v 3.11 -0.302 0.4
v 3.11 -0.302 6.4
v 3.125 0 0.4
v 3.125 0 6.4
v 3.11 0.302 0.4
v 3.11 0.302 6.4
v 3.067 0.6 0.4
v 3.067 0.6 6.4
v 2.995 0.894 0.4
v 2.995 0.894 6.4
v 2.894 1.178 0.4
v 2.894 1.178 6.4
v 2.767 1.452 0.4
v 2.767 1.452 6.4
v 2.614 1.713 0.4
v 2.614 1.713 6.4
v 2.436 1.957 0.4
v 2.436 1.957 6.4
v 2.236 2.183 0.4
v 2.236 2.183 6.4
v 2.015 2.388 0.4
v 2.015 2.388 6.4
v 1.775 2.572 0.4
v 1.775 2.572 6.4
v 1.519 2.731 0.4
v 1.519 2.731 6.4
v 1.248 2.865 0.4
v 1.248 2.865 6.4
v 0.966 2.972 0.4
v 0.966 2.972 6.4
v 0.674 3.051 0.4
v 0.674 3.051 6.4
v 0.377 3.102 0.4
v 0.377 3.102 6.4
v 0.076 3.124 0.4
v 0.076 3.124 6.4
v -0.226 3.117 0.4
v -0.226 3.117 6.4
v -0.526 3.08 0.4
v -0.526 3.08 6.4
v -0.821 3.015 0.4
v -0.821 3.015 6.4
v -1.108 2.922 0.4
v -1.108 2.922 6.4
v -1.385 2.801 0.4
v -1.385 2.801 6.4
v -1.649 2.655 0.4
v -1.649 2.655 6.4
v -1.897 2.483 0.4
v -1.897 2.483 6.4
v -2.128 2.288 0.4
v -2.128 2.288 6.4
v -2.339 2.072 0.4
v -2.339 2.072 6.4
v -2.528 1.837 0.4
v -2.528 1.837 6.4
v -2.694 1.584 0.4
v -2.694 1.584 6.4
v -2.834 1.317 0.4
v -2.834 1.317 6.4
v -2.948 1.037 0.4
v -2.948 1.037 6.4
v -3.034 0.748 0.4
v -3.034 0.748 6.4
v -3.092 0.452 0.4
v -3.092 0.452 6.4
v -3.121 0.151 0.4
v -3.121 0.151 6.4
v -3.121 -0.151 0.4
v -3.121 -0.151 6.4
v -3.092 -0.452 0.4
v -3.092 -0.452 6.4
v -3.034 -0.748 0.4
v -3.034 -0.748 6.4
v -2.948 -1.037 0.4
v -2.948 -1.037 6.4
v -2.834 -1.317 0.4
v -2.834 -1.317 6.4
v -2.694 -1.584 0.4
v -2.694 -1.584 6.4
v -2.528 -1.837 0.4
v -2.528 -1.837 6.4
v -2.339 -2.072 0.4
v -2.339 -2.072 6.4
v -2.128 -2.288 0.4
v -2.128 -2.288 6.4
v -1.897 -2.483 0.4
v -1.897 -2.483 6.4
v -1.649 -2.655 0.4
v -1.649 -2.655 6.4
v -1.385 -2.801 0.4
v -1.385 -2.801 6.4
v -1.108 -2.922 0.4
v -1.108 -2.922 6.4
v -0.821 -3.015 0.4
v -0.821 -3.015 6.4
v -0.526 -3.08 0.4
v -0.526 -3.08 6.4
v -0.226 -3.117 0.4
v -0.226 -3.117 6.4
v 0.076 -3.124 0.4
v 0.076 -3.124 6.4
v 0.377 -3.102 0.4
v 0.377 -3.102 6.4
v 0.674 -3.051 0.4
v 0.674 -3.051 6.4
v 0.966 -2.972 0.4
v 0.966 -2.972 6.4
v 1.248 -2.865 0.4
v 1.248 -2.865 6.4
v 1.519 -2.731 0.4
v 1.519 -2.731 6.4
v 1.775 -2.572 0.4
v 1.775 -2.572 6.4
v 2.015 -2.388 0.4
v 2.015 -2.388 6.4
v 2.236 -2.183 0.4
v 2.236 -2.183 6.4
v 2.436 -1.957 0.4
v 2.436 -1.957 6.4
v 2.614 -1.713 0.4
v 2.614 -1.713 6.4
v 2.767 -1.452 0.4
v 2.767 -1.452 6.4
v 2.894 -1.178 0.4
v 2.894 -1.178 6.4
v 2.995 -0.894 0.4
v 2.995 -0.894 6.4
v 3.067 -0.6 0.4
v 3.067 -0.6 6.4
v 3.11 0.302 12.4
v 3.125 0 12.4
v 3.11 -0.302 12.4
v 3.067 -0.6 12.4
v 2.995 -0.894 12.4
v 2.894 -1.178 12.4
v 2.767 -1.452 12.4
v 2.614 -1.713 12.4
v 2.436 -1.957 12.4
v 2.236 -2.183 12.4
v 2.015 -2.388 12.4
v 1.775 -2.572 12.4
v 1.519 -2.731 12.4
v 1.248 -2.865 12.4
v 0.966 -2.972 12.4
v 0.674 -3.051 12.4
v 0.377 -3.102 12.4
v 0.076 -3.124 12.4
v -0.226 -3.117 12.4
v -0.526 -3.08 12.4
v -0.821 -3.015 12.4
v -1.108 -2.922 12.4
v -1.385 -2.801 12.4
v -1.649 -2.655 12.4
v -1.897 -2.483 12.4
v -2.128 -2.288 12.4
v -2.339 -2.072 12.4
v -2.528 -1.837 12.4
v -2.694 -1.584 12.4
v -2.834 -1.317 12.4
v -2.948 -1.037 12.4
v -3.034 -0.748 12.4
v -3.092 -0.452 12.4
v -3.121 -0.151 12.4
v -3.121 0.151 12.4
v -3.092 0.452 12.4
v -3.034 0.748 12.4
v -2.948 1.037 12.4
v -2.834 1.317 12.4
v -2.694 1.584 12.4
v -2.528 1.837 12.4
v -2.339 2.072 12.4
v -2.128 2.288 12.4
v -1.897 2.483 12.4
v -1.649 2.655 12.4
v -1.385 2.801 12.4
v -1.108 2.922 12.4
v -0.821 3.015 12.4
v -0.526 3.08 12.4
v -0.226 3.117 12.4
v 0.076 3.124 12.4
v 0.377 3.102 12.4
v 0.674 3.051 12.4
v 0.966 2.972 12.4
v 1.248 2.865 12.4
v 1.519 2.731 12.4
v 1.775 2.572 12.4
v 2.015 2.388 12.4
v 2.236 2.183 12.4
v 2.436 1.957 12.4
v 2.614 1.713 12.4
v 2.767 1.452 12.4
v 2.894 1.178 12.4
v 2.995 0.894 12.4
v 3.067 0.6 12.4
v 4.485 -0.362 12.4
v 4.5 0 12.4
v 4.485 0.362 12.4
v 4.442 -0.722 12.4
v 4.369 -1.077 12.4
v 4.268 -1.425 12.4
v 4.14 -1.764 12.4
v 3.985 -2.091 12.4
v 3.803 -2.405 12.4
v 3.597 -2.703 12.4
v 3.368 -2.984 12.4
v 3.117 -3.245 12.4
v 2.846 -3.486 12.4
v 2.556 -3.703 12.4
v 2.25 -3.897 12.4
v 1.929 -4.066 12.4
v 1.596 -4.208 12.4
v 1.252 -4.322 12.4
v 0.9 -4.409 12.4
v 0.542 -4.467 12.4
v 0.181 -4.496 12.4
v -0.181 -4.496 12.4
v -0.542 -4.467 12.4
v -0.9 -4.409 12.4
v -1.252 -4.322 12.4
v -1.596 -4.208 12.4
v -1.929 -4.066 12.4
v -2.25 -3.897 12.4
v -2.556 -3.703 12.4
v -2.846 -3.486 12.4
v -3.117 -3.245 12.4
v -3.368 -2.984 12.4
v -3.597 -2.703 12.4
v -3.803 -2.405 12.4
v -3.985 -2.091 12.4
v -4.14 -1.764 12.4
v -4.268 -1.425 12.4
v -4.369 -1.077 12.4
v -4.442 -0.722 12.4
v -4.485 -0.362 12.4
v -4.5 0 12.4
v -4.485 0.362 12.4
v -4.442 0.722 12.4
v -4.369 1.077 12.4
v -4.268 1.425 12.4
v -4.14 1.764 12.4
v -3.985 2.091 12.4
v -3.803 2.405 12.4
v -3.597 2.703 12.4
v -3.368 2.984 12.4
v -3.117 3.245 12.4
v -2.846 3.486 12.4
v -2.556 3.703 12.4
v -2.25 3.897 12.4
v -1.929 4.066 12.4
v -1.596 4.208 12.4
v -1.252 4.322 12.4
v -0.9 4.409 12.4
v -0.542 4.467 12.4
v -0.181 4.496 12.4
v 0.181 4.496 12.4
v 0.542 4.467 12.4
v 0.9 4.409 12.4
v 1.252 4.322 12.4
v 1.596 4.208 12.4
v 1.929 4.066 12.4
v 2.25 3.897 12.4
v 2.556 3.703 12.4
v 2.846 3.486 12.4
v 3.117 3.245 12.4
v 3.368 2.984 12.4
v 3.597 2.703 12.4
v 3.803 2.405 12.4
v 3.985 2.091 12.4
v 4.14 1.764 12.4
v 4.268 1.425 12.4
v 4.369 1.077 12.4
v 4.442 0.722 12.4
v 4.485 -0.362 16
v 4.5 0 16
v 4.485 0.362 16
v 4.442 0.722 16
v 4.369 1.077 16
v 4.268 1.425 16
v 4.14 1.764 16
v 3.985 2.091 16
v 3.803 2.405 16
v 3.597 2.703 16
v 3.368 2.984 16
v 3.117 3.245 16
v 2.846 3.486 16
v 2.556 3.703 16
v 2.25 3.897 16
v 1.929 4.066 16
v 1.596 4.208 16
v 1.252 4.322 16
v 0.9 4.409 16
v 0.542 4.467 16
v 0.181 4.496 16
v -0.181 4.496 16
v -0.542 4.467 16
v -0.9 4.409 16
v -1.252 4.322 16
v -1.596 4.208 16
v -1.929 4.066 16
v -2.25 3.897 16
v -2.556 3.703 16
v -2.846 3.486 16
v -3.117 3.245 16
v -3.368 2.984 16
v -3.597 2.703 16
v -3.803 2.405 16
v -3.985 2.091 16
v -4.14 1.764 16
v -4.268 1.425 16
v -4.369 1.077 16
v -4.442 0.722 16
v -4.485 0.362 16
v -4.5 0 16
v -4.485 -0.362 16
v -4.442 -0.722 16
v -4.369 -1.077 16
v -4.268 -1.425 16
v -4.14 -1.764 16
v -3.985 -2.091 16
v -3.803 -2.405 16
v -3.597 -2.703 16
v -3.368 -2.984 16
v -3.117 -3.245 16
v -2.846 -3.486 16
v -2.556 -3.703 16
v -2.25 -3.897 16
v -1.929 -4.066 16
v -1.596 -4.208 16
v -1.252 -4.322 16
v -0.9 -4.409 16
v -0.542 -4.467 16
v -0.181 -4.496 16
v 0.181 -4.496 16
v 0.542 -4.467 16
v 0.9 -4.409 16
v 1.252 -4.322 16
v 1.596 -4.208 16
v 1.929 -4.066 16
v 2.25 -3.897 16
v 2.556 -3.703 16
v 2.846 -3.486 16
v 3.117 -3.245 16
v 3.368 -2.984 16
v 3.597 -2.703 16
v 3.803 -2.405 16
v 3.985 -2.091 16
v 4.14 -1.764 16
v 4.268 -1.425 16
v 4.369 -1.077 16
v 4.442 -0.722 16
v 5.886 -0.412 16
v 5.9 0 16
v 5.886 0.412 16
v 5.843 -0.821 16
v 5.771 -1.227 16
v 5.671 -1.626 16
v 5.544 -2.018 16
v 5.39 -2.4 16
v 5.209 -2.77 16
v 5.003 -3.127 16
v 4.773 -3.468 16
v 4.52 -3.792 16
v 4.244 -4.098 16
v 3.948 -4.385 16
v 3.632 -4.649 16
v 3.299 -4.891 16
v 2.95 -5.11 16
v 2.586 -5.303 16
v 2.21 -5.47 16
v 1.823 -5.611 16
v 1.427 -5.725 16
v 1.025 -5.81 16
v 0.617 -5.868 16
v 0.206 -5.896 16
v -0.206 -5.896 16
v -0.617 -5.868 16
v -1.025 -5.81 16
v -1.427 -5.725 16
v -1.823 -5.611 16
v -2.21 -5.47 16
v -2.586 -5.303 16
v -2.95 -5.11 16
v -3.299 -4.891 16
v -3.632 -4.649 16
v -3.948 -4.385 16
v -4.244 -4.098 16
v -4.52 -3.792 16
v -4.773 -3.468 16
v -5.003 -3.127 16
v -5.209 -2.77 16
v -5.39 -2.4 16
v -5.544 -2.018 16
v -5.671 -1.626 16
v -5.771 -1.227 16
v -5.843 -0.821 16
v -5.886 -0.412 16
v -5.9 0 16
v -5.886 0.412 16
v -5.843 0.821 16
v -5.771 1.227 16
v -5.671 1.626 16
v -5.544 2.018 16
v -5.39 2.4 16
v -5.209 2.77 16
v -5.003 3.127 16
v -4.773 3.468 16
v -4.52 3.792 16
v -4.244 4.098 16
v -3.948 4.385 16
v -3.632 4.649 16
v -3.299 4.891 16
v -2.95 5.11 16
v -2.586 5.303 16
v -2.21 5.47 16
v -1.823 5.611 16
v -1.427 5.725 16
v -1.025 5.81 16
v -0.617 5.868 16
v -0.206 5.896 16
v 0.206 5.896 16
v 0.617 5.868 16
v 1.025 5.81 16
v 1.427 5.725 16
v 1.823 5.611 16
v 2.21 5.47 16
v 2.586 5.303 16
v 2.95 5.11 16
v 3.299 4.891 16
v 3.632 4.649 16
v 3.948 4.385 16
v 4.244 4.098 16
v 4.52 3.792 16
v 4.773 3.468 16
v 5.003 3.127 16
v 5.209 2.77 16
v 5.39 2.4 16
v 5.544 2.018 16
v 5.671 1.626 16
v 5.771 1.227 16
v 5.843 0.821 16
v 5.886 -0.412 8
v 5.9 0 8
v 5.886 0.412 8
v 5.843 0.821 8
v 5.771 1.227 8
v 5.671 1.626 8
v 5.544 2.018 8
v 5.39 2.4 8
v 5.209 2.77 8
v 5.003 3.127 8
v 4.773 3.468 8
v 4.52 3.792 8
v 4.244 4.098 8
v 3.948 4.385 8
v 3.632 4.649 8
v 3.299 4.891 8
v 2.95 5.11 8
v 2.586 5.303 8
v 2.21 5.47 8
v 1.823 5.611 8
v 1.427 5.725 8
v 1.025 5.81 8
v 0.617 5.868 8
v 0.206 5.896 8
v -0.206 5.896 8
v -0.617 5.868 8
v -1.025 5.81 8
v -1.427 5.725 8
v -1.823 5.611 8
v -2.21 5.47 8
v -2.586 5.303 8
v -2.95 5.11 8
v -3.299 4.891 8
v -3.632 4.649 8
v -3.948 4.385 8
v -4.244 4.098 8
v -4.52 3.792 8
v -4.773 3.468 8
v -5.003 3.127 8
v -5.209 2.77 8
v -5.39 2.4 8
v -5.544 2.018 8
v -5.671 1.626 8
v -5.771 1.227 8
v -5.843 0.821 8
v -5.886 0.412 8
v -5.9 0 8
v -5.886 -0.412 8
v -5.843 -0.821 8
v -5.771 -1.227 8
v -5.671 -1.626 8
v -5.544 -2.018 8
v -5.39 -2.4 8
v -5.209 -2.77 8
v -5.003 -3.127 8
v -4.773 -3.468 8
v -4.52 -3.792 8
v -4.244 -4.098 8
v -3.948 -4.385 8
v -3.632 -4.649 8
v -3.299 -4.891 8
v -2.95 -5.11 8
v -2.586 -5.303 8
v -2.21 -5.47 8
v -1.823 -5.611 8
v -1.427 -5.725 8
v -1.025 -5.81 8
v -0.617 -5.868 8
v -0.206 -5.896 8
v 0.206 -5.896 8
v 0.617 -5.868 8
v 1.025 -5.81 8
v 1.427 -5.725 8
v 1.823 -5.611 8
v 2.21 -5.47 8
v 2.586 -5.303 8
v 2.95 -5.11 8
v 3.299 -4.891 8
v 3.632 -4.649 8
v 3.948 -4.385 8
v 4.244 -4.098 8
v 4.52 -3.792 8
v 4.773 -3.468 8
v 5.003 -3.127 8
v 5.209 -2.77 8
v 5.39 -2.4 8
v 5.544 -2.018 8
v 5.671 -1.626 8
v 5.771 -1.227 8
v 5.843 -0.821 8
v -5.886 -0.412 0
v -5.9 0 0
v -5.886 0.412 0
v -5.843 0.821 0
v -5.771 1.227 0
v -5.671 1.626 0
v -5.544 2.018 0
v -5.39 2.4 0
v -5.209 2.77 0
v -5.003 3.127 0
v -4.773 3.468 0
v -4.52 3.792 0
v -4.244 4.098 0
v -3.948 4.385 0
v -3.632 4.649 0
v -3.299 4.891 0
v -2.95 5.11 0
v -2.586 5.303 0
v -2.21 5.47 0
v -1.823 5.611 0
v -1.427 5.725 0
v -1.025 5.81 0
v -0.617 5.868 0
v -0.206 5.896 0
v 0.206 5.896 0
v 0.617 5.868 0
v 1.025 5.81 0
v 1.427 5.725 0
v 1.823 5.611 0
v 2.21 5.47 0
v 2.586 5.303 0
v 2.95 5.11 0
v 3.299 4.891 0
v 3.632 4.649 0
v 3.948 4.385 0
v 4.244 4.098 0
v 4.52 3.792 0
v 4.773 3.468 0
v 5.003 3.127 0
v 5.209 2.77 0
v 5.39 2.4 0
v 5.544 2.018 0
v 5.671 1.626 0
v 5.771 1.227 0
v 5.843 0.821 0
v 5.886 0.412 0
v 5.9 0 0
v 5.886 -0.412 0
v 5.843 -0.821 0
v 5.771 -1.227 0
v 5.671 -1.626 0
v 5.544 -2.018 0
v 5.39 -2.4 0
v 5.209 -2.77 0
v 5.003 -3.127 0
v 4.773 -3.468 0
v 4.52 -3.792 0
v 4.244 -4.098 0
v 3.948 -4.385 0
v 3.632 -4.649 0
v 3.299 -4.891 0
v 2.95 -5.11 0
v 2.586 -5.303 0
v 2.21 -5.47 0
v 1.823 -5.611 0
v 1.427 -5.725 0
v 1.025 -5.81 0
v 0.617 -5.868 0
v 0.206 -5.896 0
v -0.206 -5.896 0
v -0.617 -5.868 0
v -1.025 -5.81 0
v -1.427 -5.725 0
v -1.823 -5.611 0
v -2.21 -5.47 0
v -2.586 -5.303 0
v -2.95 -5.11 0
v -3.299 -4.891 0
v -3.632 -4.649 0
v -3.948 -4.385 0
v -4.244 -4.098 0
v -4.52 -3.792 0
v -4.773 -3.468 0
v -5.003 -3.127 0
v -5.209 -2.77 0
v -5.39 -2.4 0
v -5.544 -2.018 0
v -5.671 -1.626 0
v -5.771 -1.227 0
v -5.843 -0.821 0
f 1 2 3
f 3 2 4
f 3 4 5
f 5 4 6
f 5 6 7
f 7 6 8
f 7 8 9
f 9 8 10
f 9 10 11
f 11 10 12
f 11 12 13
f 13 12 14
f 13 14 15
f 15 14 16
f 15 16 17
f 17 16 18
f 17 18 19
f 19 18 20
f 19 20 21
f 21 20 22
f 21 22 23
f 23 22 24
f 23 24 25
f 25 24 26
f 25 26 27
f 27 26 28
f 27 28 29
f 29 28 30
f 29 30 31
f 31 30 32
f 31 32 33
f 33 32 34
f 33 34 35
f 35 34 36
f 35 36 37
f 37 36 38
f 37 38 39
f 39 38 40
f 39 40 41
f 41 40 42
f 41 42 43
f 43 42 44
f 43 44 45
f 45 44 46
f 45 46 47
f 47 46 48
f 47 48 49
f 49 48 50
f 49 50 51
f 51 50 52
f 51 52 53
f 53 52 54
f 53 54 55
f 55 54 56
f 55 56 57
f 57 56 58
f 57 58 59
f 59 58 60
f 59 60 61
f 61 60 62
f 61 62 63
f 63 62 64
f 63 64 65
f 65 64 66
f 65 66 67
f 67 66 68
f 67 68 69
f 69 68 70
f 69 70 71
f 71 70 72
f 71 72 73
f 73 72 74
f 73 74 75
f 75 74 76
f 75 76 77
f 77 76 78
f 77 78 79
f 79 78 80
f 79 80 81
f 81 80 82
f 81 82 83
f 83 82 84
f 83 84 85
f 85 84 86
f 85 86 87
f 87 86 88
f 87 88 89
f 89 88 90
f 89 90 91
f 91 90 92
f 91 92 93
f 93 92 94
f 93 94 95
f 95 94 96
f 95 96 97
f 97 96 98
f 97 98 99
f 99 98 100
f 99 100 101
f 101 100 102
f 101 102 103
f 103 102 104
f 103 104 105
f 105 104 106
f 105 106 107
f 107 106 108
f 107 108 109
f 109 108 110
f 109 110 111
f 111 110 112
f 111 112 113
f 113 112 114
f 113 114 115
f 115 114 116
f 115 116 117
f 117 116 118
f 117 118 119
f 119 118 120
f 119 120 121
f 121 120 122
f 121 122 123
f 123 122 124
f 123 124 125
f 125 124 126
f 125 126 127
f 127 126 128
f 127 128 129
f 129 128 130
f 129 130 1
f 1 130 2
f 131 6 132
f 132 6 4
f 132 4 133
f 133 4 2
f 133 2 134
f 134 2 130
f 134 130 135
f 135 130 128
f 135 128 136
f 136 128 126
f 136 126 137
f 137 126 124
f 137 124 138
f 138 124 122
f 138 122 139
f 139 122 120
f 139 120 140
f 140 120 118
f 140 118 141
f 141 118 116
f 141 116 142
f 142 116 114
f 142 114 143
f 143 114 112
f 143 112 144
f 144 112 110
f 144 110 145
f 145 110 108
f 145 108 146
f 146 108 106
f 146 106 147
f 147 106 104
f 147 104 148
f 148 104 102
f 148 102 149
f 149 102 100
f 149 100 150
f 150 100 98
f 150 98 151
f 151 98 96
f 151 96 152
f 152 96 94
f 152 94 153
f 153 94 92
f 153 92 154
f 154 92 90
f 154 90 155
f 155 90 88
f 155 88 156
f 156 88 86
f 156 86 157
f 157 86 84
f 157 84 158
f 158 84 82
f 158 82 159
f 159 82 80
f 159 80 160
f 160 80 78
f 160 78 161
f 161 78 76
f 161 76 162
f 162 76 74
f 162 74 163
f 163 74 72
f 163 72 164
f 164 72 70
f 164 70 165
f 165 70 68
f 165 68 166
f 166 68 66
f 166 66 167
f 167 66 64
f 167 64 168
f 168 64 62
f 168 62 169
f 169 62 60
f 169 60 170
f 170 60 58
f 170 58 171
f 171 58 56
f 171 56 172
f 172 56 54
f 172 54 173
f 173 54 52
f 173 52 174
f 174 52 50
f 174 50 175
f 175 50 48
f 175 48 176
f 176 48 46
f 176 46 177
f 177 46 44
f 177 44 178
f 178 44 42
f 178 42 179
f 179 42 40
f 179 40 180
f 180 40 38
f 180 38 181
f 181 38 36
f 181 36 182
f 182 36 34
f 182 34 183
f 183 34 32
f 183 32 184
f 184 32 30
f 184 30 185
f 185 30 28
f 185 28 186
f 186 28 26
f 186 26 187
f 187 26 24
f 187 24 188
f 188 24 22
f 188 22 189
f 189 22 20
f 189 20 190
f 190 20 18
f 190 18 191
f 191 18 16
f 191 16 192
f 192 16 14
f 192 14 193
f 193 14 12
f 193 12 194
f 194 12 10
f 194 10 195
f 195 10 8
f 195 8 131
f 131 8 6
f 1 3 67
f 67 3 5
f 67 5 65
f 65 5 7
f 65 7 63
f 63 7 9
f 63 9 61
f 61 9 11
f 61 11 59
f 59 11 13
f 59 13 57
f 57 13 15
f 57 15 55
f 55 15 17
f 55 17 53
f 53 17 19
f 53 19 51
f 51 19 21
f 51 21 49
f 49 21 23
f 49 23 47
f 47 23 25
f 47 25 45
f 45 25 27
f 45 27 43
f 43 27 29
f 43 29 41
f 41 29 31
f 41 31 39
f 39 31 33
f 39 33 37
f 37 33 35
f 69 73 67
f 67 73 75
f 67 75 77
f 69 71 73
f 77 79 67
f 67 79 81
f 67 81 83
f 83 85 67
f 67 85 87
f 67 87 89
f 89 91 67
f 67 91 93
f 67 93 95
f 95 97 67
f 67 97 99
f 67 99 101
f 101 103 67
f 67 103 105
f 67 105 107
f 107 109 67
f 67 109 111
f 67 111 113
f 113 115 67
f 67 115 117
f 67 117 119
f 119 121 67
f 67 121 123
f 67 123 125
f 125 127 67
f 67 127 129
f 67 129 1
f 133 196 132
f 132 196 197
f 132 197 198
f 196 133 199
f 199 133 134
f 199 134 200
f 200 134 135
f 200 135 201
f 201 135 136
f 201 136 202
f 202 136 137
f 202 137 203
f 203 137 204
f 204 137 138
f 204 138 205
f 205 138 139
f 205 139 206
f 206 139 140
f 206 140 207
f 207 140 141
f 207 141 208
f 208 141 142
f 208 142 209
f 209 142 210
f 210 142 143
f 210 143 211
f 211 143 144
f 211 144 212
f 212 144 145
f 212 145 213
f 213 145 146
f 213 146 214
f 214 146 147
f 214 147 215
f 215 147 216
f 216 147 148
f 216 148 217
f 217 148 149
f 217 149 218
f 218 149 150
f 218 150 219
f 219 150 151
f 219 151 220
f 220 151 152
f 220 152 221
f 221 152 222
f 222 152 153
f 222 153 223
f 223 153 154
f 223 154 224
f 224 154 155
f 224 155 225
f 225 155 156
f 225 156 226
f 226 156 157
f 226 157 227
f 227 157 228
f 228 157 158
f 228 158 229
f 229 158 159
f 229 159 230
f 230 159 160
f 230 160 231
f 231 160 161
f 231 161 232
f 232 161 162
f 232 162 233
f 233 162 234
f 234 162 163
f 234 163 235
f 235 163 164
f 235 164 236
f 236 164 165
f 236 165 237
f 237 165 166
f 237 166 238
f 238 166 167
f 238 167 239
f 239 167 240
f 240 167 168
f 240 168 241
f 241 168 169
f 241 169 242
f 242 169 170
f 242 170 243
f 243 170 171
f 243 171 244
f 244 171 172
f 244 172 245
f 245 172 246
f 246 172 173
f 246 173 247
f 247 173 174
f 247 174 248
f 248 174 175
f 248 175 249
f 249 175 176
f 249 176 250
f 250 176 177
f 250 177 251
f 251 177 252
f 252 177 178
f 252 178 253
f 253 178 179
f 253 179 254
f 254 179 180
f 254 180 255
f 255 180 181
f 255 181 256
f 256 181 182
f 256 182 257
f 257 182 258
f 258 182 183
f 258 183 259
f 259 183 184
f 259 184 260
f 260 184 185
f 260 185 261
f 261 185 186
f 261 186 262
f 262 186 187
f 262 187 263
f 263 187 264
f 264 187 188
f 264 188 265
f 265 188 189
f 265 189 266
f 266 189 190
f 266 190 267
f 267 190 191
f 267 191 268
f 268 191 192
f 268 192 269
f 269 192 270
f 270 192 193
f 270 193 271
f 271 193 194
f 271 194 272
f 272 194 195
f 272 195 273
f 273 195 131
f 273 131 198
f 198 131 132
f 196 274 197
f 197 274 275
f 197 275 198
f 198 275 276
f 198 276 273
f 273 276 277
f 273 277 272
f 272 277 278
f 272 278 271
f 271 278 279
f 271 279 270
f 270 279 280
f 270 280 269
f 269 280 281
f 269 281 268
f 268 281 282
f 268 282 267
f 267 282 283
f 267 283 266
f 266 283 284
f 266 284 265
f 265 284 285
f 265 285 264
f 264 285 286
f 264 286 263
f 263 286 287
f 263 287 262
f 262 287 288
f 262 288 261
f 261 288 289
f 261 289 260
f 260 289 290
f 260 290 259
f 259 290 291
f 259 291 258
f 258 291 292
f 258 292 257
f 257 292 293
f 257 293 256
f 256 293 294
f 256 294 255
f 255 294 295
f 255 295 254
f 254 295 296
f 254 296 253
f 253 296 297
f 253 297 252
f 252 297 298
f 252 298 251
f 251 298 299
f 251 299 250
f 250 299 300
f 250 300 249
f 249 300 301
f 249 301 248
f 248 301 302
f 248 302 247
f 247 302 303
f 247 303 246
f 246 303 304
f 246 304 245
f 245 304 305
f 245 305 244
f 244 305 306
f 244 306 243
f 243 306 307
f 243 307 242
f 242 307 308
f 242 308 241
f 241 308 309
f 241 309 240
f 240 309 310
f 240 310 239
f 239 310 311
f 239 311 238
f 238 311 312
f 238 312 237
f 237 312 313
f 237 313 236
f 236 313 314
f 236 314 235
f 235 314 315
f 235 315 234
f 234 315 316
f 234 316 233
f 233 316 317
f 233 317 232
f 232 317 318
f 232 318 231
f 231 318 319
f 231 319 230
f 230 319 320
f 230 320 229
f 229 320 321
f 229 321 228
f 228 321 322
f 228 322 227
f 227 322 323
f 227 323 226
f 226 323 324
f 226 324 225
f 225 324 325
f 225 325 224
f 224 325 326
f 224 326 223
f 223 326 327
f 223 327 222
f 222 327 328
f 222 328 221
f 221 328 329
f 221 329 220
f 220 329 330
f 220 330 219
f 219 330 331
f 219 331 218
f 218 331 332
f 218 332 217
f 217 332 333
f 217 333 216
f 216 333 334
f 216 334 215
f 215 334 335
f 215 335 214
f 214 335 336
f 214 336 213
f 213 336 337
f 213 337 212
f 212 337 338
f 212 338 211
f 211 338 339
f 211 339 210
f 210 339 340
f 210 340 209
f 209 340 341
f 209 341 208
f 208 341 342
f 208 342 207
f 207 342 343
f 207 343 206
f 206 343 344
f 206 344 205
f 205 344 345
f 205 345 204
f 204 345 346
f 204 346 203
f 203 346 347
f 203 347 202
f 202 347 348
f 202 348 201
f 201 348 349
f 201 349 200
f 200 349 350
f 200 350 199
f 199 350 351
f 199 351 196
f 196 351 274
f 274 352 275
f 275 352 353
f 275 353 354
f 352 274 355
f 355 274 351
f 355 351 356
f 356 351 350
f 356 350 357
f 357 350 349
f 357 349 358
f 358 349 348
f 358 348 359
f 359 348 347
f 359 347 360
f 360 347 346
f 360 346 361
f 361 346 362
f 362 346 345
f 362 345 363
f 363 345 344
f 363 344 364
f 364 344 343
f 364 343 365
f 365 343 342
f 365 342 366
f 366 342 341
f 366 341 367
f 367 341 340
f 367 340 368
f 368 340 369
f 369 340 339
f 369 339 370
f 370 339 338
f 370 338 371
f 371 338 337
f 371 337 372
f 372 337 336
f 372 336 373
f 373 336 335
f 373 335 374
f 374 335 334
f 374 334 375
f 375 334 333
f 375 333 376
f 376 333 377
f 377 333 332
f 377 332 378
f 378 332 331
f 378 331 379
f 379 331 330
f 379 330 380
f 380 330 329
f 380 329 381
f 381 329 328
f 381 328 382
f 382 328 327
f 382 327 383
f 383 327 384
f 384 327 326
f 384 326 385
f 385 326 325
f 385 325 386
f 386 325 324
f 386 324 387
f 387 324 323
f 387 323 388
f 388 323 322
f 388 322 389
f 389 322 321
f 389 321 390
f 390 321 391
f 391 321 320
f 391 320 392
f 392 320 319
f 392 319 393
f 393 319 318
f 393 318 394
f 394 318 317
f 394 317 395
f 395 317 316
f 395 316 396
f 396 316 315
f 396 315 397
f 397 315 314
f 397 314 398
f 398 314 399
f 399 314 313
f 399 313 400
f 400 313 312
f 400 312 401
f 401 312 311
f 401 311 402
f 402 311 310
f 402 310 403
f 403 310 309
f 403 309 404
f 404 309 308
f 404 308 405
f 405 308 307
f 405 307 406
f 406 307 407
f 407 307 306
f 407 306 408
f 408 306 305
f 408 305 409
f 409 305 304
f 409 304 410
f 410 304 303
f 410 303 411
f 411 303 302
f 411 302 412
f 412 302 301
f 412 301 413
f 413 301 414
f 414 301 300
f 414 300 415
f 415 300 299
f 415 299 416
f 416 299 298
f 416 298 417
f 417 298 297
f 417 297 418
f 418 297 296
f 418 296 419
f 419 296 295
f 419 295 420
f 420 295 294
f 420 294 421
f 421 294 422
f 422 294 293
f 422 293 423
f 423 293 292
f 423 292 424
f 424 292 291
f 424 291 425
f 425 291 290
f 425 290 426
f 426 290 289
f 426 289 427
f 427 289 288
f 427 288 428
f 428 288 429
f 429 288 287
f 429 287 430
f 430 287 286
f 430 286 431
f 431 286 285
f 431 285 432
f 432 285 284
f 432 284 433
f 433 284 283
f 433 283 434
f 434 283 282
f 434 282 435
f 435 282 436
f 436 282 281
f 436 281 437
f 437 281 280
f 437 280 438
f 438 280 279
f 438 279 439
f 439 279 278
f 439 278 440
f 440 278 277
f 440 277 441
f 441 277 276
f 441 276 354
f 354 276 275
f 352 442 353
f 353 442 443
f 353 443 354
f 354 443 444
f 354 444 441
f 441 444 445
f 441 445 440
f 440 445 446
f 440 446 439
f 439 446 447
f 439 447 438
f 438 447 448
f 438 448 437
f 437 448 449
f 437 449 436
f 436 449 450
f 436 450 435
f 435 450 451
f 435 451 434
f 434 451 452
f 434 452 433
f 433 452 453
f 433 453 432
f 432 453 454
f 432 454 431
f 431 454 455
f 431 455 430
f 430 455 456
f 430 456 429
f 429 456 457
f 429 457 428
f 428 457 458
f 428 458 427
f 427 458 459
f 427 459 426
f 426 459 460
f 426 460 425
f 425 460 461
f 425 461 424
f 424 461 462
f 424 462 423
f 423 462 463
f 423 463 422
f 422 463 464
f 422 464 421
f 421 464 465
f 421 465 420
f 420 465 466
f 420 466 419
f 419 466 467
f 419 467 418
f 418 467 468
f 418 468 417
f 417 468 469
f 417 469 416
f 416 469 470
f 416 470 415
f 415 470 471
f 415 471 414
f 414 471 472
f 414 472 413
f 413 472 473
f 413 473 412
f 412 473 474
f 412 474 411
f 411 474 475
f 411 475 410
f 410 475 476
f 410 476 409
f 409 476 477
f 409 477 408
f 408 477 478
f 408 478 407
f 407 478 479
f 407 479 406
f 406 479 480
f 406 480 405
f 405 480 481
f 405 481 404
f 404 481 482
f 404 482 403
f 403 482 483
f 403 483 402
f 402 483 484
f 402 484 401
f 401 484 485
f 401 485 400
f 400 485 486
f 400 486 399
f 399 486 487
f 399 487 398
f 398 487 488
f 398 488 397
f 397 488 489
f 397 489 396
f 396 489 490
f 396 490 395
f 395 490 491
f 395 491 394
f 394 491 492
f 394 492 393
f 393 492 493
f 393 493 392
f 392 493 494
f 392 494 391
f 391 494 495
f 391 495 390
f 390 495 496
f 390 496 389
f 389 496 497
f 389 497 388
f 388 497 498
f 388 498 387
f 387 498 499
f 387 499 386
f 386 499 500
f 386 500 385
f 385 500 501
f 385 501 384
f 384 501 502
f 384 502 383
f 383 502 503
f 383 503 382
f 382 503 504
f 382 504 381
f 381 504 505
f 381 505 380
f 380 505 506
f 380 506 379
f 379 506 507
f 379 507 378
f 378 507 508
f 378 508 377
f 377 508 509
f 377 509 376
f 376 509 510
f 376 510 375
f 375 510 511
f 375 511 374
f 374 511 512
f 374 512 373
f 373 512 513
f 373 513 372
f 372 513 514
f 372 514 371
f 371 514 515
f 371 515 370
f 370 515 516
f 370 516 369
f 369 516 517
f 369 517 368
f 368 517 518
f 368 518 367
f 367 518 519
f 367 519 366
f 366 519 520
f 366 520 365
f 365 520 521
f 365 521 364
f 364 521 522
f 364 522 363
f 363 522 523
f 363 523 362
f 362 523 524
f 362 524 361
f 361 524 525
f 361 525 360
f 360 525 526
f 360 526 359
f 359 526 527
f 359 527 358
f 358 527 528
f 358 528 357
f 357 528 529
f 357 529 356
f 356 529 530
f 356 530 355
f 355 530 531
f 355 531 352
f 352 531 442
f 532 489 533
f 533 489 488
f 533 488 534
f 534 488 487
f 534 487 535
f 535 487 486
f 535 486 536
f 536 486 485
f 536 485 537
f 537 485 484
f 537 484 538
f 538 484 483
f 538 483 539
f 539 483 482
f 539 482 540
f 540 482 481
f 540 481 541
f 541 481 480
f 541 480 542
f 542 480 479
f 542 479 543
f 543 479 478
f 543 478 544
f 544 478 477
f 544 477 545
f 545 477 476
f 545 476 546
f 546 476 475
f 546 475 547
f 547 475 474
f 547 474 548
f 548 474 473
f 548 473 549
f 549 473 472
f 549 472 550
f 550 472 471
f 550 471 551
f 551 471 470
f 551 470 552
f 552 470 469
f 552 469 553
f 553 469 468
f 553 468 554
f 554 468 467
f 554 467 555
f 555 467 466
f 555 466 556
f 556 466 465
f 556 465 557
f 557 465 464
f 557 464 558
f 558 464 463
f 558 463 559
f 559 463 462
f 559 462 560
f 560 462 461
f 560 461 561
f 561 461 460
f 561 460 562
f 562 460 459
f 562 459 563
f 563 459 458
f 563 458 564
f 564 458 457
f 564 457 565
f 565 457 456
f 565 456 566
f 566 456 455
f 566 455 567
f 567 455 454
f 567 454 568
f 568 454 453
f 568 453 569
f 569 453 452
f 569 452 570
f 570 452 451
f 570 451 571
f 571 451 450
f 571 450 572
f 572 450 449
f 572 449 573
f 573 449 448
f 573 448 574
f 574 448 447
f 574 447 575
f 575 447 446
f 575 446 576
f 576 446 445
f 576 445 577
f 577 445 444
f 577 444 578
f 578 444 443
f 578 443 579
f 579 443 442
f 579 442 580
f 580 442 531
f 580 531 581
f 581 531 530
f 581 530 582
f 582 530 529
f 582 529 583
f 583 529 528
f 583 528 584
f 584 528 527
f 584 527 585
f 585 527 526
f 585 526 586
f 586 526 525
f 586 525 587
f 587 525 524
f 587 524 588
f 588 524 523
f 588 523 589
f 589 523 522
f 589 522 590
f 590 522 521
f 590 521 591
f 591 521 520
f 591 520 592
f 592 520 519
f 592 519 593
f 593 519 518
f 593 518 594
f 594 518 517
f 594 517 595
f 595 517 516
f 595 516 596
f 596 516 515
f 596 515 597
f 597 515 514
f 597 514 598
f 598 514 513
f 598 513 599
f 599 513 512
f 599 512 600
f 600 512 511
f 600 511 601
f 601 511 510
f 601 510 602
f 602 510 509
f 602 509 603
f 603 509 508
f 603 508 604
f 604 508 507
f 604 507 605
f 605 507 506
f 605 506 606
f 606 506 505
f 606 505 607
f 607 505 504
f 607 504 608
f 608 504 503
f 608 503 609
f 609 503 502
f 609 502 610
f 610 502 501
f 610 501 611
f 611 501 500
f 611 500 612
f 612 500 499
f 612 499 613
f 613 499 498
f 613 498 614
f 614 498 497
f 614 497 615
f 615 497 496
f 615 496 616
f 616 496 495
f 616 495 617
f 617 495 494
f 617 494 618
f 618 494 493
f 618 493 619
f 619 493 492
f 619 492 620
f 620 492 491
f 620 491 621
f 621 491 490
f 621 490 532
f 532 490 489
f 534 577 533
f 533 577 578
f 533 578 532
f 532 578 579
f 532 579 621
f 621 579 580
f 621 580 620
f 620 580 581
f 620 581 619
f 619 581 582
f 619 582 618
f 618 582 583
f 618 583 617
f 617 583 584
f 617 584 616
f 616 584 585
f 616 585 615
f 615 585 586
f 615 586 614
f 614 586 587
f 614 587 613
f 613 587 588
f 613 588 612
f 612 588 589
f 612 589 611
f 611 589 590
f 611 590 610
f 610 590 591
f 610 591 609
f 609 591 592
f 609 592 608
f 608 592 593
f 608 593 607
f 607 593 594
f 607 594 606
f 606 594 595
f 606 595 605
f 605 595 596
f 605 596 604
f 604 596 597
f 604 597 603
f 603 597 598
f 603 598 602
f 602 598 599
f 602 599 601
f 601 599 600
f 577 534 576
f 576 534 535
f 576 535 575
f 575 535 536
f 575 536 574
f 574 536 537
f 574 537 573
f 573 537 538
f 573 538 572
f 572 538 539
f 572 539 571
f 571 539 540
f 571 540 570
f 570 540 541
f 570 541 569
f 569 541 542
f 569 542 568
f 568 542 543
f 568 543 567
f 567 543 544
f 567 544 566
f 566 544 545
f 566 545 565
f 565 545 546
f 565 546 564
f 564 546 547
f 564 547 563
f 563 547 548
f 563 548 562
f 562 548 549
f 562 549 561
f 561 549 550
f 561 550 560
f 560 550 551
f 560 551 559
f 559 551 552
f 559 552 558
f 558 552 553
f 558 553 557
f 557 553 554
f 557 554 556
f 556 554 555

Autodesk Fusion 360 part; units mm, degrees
sketch "Sketch1" plane through (0, 0, 0) normal (0, 0, 1) x (1, 0, 0)
  circle A0 centre (0, 0) radius 5.9
  dimension "d1" = 11.8
extrude "Extrude1" add sketch "Sketch1" along normal blind 15
sketch "Sketch2" plane through (0, 0, 0) normal (0, 0, 1) x (1, 0, 0)
sketch "Sketch3" plane through (0, 0, 15) normal (0, 0, 1) x (-1, 0, 0)
  circle A0 centre (0, 0) radius 5.9
  circle A1 centre (0, 0) radius 4.5
  dimension "d4" = 9
extrude "Extrude2" add sketch "Sketch3" along normal blind 1
extrude "Extrude3" cut 1 faces at (-0.5857, 1.1465, 15) along direction (0, 0, -1) blind 2.6
sketch "Sketch4" plane through (0, 0, 12.4) normal (0, 0, 1) x (-1, 0, 0)
  circle A0 centre (0, 0) radius 4.5
  circle A1 centre (0, 0) radius 3.125
  dimension "d9" = 6.25
extrude "Extrude4" cut sketch "Sketch4" against normal blind 12 contours A1
